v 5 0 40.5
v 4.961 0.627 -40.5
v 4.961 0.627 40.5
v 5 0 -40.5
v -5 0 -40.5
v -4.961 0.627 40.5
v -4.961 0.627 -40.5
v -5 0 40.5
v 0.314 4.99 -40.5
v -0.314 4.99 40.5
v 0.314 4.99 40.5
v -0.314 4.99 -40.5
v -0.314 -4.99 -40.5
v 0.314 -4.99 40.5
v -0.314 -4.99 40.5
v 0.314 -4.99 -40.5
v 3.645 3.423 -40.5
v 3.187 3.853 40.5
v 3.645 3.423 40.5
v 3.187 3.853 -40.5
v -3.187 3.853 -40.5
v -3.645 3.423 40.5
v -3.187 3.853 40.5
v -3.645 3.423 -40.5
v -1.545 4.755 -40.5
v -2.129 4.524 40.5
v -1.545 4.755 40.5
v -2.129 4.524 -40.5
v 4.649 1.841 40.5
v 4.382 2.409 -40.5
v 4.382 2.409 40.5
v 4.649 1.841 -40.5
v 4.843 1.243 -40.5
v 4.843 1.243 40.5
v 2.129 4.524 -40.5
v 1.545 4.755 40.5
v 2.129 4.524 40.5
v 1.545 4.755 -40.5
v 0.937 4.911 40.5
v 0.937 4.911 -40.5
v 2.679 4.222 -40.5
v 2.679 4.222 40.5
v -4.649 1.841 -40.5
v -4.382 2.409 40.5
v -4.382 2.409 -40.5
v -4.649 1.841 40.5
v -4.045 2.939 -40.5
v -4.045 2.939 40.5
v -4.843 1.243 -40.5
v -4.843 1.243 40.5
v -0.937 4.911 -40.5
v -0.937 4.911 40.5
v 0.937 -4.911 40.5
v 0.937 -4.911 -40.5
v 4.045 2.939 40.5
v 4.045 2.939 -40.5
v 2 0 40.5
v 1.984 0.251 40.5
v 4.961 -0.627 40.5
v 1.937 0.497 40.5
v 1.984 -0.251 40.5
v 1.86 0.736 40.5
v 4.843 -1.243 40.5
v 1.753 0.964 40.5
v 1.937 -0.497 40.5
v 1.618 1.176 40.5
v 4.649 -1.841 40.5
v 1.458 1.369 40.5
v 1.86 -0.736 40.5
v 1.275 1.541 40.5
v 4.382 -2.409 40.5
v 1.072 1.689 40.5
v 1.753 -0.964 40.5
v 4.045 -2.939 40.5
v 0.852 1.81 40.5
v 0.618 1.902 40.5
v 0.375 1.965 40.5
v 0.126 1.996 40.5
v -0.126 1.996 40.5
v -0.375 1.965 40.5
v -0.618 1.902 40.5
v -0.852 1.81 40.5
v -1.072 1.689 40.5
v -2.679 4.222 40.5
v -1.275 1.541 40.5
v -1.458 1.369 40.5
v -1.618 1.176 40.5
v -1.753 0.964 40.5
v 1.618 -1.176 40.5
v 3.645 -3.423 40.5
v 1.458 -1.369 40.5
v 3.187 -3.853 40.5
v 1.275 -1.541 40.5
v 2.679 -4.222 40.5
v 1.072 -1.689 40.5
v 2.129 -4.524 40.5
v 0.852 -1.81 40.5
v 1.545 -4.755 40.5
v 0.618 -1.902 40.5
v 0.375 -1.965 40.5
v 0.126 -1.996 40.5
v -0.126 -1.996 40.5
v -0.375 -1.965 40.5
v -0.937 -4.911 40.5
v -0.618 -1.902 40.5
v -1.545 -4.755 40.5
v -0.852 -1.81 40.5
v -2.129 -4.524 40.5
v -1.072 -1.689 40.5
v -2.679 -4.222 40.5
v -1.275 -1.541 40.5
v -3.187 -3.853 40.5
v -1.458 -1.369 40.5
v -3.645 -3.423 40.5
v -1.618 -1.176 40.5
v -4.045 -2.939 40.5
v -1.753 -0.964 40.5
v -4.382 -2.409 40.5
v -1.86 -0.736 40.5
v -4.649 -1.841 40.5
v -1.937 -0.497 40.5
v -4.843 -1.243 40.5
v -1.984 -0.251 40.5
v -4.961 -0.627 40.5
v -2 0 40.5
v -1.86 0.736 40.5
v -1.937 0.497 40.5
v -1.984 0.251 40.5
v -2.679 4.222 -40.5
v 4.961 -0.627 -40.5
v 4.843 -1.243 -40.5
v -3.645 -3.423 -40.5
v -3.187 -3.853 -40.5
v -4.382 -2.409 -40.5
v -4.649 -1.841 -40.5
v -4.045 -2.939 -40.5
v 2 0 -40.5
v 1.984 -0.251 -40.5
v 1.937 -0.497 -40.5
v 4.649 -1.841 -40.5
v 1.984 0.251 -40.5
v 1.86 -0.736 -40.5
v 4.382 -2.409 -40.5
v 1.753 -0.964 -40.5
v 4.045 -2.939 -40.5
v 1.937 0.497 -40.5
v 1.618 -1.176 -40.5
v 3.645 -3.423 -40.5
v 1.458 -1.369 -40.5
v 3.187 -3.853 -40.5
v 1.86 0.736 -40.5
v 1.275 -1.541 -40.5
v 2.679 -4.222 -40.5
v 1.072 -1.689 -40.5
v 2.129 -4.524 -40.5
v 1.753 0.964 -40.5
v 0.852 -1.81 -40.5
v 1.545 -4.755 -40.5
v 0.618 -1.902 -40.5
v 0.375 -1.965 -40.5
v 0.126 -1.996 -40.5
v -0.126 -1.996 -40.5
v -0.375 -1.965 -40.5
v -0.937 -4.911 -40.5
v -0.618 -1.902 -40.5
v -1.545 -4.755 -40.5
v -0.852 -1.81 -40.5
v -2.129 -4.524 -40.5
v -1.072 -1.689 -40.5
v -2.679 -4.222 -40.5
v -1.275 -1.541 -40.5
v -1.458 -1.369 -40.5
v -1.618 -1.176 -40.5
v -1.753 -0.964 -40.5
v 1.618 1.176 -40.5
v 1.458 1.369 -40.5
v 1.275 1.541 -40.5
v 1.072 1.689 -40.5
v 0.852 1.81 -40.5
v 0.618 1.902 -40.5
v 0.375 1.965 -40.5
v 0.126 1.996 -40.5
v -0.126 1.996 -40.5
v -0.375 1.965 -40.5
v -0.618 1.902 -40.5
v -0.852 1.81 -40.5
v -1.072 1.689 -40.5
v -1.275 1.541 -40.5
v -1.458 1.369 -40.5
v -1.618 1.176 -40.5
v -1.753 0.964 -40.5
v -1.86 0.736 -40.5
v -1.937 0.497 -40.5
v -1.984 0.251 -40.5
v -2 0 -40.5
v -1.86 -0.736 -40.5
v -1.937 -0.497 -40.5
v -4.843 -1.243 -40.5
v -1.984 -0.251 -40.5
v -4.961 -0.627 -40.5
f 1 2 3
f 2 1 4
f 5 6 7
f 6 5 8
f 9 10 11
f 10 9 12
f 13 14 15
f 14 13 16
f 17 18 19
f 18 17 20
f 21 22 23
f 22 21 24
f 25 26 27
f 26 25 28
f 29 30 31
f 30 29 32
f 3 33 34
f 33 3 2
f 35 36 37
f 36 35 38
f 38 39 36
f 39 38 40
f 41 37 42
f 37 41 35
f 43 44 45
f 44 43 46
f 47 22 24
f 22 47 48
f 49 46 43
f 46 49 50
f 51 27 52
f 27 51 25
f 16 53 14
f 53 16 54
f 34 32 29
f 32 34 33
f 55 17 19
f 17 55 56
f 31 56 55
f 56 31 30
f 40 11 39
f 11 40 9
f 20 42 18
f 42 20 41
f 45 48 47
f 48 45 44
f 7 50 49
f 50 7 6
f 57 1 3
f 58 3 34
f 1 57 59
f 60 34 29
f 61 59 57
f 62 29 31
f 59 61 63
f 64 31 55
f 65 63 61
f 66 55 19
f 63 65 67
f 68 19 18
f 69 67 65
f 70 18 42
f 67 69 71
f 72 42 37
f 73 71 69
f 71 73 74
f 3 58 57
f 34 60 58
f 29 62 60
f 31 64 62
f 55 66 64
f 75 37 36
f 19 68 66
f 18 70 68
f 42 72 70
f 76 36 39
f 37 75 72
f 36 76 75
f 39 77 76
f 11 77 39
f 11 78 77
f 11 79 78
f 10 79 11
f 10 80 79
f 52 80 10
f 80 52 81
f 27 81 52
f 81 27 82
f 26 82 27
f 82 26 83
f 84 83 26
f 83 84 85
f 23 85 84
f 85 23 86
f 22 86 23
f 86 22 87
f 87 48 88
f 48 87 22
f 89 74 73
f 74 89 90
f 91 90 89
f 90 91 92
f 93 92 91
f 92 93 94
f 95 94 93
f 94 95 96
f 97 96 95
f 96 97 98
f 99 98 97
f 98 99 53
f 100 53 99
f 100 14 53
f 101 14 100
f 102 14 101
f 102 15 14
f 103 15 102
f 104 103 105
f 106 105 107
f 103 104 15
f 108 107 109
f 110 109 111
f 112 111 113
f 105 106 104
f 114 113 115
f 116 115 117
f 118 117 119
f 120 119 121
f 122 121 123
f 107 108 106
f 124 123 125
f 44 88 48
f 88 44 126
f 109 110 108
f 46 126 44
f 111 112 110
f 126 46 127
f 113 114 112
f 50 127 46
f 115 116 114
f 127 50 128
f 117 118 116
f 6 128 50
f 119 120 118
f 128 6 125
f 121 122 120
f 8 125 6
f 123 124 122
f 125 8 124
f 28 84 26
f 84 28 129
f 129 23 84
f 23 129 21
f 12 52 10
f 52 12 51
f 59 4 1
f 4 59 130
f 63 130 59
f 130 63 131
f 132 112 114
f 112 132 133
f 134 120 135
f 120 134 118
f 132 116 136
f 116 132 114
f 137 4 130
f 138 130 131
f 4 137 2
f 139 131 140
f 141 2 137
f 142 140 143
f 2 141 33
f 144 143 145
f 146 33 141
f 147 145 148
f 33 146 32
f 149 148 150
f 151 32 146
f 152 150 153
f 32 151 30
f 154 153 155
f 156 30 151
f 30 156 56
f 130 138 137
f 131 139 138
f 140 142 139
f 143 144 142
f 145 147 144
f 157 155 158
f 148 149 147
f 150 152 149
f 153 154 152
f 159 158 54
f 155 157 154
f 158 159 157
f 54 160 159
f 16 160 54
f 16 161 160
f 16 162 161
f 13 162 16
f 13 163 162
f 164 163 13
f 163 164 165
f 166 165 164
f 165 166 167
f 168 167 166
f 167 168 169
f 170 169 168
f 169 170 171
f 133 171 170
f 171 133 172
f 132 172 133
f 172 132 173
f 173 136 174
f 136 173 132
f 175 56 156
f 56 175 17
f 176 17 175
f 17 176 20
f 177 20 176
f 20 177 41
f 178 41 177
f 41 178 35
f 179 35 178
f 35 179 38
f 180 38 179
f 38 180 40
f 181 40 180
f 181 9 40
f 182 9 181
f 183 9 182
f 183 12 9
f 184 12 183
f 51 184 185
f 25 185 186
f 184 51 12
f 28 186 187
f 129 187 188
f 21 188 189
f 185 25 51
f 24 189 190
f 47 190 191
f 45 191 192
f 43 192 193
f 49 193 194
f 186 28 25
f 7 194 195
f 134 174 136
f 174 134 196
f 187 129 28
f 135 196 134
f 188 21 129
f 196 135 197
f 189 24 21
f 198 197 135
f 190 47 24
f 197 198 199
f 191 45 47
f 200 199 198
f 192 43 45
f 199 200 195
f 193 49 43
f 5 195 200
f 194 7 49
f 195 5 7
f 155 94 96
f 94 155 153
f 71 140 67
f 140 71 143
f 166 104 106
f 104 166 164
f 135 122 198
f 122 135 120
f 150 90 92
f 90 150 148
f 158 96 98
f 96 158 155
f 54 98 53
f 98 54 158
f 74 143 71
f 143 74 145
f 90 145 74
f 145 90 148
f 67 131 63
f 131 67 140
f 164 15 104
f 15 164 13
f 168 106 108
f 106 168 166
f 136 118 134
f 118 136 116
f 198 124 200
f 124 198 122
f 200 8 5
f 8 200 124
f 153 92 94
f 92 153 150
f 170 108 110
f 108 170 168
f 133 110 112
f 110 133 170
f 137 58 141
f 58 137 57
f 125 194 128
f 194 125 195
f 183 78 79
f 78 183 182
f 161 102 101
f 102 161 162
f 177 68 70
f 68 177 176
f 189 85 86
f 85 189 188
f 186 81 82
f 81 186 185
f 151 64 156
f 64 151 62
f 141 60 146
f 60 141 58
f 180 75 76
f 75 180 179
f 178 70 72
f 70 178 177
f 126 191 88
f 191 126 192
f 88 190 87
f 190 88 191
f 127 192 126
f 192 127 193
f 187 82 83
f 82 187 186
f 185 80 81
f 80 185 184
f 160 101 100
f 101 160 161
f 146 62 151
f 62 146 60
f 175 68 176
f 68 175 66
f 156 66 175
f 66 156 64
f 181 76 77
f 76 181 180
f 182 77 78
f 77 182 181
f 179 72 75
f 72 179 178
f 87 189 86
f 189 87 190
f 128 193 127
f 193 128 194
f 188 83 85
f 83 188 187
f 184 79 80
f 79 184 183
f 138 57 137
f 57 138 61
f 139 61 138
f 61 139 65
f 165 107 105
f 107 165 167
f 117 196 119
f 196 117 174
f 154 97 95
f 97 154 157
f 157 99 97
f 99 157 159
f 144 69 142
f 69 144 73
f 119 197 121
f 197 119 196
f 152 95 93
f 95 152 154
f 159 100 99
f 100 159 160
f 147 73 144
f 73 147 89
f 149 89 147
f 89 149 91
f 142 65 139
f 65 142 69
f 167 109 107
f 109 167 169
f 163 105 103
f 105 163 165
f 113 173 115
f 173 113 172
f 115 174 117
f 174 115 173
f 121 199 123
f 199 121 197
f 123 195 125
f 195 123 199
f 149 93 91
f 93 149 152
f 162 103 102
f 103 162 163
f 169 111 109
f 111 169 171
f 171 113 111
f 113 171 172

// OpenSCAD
$fn = 50;


difference() {
	union() {
		translate(v = [0, 0, -40.5000000000]) {
			cylinder(h = 81, r = 5.0000000000);
		}
	}
	union() {
		translate(v = [0, 0, -100.0000000000]) {
			cylinder(h = 200, r = 2);
		}
	}
}
